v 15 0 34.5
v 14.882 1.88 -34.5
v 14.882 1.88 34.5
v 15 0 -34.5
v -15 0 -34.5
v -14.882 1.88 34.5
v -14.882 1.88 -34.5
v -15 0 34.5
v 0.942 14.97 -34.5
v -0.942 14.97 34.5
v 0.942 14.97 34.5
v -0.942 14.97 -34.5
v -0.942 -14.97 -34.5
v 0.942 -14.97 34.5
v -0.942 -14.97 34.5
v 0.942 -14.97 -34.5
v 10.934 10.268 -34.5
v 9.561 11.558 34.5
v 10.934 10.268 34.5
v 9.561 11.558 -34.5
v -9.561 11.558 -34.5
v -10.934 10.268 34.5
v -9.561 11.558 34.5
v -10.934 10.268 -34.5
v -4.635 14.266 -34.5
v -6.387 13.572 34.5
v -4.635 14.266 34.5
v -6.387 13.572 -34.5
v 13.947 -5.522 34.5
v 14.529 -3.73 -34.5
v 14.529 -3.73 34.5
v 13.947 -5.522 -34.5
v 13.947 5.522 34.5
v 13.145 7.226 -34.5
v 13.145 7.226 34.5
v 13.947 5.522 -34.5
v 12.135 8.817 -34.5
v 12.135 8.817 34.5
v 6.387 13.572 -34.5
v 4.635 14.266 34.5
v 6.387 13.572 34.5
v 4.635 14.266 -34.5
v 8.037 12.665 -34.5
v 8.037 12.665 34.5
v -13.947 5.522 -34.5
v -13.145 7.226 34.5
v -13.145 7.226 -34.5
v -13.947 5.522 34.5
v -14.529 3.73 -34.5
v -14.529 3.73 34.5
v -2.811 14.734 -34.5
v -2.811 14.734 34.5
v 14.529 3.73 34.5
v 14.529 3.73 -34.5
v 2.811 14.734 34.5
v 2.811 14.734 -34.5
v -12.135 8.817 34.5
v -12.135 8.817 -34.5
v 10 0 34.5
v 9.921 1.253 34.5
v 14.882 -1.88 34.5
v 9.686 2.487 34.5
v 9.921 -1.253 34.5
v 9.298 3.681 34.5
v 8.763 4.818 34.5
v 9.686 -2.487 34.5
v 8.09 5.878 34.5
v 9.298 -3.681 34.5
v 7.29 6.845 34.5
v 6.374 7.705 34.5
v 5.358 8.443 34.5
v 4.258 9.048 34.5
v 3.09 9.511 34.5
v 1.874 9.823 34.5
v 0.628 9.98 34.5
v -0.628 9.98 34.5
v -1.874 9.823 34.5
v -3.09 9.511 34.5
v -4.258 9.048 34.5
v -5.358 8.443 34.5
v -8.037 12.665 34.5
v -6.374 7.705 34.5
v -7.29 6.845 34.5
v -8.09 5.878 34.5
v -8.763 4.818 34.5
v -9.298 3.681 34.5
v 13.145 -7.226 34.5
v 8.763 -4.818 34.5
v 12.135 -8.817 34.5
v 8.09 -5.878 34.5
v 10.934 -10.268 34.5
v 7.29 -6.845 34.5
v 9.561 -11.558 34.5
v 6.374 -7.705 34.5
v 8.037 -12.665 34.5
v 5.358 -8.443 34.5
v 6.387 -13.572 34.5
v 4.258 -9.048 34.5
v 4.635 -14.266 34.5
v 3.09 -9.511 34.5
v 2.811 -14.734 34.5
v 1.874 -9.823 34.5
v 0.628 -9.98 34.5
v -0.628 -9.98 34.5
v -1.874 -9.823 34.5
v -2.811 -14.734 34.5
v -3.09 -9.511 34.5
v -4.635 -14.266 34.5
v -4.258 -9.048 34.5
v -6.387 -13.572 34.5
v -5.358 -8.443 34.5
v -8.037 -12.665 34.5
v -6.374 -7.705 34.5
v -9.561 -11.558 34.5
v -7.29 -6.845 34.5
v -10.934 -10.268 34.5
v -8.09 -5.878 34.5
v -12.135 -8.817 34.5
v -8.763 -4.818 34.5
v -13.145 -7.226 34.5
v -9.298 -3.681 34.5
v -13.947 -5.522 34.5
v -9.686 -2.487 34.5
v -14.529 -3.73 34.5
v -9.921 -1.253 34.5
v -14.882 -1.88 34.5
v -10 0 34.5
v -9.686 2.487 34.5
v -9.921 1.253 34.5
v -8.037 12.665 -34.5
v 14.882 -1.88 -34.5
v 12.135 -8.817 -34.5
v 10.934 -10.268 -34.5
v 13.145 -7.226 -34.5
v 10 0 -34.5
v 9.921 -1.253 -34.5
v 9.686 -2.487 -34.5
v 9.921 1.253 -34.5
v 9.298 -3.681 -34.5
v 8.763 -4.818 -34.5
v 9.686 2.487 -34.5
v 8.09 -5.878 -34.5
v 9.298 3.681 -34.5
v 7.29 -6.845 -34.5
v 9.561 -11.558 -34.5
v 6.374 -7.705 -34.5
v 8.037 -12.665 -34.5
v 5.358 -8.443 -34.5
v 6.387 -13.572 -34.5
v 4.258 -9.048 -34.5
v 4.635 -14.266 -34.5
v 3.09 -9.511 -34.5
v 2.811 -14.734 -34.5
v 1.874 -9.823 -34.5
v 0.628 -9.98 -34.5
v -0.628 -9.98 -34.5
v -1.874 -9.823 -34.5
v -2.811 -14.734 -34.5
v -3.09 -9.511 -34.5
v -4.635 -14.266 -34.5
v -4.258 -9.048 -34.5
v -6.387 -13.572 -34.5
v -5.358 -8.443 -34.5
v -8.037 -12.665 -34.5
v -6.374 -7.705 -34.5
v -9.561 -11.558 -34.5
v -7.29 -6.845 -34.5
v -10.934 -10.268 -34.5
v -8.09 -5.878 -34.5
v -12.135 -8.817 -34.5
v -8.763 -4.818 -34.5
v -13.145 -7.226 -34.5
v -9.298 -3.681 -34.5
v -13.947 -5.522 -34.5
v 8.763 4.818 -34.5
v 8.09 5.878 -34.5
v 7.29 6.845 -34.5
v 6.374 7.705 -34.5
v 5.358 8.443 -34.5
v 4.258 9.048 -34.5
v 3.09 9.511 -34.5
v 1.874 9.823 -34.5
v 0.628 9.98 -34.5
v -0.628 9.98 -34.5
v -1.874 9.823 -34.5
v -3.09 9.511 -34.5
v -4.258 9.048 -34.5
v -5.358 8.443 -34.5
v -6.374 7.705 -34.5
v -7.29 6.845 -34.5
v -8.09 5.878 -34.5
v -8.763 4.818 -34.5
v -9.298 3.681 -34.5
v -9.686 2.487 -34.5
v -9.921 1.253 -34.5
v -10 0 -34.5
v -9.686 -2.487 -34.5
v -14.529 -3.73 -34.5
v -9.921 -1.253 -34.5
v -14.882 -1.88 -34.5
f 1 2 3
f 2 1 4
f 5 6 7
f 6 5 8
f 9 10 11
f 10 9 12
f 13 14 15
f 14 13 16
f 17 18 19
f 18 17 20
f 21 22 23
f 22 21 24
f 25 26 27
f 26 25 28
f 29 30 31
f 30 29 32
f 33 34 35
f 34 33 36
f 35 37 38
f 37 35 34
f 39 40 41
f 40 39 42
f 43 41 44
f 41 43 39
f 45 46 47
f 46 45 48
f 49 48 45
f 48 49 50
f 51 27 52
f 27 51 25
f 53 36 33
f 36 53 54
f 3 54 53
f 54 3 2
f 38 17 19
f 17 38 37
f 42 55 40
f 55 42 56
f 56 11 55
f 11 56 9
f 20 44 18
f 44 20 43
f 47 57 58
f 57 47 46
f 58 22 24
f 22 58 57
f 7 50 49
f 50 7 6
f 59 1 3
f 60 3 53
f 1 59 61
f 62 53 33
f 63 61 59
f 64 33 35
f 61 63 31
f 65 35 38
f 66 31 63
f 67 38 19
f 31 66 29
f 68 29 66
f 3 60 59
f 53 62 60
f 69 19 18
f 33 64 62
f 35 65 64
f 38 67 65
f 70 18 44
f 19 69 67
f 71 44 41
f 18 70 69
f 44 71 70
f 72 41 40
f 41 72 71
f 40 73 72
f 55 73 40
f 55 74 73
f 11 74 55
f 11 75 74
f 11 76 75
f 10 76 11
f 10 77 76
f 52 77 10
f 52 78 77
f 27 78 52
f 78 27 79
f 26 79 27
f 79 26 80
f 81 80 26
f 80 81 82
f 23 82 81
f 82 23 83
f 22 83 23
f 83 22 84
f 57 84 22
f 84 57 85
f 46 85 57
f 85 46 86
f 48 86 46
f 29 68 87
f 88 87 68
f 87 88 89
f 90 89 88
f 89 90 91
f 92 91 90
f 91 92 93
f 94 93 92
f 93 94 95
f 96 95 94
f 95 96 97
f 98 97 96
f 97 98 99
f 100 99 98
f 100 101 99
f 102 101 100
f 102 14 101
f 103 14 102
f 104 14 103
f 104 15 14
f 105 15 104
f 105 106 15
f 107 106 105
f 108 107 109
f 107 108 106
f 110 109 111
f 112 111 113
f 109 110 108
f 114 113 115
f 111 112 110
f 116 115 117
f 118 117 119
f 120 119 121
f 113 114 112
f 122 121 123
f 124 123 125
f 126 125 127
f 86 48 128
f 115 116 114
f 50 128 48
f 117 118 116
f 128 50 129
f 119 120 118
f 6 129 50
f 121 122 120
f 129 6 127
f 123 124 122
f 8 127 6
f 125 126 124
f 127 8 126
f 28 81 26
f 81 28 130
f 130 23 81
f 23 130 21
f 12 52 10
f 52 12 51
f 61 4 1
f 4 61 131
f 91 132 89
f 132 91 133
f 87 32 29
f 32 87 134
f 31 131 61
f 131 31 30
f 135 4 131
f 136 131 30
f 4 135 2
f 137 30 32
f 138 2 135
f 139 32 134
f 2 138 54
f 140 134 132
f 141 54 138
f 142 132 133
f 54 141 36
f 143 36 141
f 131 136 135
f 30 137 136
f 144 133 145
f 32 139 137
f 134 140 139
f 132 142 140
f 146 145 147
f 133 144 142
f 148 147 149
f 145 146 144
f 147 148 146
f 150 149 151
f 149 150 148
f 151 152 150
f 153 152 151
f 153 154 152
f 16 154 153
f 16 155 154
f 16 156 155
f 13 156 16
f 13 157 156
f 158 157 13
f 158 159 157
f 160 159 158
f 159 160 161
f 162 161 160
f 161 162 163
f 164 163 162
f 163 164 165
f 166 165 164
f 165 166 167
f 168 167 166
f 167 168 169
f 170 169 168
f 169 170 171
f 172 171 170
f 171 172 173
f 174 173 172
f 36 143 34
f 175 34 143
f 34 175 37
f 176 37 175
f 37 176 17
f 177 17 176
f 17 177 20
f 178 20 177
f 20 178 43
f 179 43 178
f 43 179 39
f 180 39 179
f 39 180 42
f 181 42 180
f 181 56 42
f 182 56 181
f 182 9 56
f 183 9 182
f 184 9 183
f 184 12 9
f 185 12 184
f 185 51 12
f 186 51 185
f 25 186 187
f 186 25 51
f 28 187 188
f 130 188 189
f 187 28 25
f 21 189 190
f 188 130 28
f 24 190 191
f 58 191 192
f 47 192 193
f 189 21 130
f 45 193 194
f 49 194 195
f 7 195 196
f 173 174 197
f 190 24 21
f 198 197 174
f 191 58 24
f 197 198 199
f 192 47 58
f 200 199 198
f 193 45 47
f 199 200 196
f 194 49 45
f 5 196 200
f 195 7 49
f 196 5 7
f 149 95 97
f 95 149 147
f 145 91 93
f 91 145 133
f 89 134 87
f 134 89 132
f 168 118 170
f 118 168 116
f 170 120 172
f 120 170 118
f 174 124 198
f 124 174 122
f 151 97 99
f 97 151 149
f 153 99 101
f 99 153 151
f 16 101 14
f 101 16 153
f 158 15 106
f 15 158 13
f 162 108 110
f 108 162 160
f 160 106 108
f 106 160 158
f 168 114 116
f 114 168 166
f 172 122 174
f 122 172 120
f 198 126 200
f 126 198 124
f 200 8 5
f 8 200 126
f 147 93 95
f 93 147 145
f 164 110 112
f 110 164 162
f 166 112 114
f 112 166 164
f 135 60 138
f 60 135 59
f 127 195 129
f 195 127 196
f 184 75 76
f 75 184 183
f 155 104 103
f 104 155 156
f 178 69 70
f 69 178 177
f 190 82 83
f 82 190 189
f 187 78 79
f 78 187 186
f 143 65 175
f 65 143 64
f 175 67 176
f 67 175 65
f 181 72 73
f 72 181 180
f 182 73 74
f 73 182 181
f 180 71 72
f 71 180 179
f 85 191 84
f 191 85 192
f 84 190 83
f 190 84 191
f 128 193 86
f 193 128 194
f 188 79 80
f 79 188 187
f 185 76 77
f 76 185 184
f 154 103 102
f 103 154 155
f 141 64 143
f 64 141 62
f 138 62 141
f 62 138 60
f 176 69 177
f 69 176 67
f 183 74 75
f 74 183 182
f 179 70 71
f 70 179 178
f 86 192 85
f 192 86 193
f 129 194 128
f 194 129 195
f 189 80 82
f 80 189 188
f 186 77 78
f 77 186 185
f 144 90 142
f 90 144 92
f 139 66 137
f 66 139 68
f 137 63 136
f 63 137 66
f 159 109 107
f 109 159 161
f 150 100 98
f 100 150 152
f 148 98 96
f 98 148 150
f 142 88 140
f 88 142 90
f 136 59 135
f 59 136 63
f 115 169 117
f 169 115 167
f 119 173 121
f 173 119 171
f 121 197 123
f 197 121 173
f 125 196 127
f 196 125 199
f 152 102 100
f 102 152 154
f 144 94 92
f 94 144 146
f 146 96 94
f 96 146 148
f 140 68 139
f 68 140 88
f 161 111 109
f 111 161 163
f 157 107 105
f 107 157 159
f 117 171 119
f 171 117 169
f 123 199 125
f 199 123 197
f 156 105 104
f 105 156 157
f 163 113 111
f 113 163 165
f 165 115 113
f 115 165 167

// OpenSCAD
$fn = 50;


difference() {
	union() {
		translate(v = [0, 0, -34.5000000000]) {
			cylinder(h = 69, r = 15.0000000000);
		}
	}
	union() {
		translate(v = [0, 0, -100.0000000000]) {
			cylinder(h = 200, r = 10);
		}
	}
}
